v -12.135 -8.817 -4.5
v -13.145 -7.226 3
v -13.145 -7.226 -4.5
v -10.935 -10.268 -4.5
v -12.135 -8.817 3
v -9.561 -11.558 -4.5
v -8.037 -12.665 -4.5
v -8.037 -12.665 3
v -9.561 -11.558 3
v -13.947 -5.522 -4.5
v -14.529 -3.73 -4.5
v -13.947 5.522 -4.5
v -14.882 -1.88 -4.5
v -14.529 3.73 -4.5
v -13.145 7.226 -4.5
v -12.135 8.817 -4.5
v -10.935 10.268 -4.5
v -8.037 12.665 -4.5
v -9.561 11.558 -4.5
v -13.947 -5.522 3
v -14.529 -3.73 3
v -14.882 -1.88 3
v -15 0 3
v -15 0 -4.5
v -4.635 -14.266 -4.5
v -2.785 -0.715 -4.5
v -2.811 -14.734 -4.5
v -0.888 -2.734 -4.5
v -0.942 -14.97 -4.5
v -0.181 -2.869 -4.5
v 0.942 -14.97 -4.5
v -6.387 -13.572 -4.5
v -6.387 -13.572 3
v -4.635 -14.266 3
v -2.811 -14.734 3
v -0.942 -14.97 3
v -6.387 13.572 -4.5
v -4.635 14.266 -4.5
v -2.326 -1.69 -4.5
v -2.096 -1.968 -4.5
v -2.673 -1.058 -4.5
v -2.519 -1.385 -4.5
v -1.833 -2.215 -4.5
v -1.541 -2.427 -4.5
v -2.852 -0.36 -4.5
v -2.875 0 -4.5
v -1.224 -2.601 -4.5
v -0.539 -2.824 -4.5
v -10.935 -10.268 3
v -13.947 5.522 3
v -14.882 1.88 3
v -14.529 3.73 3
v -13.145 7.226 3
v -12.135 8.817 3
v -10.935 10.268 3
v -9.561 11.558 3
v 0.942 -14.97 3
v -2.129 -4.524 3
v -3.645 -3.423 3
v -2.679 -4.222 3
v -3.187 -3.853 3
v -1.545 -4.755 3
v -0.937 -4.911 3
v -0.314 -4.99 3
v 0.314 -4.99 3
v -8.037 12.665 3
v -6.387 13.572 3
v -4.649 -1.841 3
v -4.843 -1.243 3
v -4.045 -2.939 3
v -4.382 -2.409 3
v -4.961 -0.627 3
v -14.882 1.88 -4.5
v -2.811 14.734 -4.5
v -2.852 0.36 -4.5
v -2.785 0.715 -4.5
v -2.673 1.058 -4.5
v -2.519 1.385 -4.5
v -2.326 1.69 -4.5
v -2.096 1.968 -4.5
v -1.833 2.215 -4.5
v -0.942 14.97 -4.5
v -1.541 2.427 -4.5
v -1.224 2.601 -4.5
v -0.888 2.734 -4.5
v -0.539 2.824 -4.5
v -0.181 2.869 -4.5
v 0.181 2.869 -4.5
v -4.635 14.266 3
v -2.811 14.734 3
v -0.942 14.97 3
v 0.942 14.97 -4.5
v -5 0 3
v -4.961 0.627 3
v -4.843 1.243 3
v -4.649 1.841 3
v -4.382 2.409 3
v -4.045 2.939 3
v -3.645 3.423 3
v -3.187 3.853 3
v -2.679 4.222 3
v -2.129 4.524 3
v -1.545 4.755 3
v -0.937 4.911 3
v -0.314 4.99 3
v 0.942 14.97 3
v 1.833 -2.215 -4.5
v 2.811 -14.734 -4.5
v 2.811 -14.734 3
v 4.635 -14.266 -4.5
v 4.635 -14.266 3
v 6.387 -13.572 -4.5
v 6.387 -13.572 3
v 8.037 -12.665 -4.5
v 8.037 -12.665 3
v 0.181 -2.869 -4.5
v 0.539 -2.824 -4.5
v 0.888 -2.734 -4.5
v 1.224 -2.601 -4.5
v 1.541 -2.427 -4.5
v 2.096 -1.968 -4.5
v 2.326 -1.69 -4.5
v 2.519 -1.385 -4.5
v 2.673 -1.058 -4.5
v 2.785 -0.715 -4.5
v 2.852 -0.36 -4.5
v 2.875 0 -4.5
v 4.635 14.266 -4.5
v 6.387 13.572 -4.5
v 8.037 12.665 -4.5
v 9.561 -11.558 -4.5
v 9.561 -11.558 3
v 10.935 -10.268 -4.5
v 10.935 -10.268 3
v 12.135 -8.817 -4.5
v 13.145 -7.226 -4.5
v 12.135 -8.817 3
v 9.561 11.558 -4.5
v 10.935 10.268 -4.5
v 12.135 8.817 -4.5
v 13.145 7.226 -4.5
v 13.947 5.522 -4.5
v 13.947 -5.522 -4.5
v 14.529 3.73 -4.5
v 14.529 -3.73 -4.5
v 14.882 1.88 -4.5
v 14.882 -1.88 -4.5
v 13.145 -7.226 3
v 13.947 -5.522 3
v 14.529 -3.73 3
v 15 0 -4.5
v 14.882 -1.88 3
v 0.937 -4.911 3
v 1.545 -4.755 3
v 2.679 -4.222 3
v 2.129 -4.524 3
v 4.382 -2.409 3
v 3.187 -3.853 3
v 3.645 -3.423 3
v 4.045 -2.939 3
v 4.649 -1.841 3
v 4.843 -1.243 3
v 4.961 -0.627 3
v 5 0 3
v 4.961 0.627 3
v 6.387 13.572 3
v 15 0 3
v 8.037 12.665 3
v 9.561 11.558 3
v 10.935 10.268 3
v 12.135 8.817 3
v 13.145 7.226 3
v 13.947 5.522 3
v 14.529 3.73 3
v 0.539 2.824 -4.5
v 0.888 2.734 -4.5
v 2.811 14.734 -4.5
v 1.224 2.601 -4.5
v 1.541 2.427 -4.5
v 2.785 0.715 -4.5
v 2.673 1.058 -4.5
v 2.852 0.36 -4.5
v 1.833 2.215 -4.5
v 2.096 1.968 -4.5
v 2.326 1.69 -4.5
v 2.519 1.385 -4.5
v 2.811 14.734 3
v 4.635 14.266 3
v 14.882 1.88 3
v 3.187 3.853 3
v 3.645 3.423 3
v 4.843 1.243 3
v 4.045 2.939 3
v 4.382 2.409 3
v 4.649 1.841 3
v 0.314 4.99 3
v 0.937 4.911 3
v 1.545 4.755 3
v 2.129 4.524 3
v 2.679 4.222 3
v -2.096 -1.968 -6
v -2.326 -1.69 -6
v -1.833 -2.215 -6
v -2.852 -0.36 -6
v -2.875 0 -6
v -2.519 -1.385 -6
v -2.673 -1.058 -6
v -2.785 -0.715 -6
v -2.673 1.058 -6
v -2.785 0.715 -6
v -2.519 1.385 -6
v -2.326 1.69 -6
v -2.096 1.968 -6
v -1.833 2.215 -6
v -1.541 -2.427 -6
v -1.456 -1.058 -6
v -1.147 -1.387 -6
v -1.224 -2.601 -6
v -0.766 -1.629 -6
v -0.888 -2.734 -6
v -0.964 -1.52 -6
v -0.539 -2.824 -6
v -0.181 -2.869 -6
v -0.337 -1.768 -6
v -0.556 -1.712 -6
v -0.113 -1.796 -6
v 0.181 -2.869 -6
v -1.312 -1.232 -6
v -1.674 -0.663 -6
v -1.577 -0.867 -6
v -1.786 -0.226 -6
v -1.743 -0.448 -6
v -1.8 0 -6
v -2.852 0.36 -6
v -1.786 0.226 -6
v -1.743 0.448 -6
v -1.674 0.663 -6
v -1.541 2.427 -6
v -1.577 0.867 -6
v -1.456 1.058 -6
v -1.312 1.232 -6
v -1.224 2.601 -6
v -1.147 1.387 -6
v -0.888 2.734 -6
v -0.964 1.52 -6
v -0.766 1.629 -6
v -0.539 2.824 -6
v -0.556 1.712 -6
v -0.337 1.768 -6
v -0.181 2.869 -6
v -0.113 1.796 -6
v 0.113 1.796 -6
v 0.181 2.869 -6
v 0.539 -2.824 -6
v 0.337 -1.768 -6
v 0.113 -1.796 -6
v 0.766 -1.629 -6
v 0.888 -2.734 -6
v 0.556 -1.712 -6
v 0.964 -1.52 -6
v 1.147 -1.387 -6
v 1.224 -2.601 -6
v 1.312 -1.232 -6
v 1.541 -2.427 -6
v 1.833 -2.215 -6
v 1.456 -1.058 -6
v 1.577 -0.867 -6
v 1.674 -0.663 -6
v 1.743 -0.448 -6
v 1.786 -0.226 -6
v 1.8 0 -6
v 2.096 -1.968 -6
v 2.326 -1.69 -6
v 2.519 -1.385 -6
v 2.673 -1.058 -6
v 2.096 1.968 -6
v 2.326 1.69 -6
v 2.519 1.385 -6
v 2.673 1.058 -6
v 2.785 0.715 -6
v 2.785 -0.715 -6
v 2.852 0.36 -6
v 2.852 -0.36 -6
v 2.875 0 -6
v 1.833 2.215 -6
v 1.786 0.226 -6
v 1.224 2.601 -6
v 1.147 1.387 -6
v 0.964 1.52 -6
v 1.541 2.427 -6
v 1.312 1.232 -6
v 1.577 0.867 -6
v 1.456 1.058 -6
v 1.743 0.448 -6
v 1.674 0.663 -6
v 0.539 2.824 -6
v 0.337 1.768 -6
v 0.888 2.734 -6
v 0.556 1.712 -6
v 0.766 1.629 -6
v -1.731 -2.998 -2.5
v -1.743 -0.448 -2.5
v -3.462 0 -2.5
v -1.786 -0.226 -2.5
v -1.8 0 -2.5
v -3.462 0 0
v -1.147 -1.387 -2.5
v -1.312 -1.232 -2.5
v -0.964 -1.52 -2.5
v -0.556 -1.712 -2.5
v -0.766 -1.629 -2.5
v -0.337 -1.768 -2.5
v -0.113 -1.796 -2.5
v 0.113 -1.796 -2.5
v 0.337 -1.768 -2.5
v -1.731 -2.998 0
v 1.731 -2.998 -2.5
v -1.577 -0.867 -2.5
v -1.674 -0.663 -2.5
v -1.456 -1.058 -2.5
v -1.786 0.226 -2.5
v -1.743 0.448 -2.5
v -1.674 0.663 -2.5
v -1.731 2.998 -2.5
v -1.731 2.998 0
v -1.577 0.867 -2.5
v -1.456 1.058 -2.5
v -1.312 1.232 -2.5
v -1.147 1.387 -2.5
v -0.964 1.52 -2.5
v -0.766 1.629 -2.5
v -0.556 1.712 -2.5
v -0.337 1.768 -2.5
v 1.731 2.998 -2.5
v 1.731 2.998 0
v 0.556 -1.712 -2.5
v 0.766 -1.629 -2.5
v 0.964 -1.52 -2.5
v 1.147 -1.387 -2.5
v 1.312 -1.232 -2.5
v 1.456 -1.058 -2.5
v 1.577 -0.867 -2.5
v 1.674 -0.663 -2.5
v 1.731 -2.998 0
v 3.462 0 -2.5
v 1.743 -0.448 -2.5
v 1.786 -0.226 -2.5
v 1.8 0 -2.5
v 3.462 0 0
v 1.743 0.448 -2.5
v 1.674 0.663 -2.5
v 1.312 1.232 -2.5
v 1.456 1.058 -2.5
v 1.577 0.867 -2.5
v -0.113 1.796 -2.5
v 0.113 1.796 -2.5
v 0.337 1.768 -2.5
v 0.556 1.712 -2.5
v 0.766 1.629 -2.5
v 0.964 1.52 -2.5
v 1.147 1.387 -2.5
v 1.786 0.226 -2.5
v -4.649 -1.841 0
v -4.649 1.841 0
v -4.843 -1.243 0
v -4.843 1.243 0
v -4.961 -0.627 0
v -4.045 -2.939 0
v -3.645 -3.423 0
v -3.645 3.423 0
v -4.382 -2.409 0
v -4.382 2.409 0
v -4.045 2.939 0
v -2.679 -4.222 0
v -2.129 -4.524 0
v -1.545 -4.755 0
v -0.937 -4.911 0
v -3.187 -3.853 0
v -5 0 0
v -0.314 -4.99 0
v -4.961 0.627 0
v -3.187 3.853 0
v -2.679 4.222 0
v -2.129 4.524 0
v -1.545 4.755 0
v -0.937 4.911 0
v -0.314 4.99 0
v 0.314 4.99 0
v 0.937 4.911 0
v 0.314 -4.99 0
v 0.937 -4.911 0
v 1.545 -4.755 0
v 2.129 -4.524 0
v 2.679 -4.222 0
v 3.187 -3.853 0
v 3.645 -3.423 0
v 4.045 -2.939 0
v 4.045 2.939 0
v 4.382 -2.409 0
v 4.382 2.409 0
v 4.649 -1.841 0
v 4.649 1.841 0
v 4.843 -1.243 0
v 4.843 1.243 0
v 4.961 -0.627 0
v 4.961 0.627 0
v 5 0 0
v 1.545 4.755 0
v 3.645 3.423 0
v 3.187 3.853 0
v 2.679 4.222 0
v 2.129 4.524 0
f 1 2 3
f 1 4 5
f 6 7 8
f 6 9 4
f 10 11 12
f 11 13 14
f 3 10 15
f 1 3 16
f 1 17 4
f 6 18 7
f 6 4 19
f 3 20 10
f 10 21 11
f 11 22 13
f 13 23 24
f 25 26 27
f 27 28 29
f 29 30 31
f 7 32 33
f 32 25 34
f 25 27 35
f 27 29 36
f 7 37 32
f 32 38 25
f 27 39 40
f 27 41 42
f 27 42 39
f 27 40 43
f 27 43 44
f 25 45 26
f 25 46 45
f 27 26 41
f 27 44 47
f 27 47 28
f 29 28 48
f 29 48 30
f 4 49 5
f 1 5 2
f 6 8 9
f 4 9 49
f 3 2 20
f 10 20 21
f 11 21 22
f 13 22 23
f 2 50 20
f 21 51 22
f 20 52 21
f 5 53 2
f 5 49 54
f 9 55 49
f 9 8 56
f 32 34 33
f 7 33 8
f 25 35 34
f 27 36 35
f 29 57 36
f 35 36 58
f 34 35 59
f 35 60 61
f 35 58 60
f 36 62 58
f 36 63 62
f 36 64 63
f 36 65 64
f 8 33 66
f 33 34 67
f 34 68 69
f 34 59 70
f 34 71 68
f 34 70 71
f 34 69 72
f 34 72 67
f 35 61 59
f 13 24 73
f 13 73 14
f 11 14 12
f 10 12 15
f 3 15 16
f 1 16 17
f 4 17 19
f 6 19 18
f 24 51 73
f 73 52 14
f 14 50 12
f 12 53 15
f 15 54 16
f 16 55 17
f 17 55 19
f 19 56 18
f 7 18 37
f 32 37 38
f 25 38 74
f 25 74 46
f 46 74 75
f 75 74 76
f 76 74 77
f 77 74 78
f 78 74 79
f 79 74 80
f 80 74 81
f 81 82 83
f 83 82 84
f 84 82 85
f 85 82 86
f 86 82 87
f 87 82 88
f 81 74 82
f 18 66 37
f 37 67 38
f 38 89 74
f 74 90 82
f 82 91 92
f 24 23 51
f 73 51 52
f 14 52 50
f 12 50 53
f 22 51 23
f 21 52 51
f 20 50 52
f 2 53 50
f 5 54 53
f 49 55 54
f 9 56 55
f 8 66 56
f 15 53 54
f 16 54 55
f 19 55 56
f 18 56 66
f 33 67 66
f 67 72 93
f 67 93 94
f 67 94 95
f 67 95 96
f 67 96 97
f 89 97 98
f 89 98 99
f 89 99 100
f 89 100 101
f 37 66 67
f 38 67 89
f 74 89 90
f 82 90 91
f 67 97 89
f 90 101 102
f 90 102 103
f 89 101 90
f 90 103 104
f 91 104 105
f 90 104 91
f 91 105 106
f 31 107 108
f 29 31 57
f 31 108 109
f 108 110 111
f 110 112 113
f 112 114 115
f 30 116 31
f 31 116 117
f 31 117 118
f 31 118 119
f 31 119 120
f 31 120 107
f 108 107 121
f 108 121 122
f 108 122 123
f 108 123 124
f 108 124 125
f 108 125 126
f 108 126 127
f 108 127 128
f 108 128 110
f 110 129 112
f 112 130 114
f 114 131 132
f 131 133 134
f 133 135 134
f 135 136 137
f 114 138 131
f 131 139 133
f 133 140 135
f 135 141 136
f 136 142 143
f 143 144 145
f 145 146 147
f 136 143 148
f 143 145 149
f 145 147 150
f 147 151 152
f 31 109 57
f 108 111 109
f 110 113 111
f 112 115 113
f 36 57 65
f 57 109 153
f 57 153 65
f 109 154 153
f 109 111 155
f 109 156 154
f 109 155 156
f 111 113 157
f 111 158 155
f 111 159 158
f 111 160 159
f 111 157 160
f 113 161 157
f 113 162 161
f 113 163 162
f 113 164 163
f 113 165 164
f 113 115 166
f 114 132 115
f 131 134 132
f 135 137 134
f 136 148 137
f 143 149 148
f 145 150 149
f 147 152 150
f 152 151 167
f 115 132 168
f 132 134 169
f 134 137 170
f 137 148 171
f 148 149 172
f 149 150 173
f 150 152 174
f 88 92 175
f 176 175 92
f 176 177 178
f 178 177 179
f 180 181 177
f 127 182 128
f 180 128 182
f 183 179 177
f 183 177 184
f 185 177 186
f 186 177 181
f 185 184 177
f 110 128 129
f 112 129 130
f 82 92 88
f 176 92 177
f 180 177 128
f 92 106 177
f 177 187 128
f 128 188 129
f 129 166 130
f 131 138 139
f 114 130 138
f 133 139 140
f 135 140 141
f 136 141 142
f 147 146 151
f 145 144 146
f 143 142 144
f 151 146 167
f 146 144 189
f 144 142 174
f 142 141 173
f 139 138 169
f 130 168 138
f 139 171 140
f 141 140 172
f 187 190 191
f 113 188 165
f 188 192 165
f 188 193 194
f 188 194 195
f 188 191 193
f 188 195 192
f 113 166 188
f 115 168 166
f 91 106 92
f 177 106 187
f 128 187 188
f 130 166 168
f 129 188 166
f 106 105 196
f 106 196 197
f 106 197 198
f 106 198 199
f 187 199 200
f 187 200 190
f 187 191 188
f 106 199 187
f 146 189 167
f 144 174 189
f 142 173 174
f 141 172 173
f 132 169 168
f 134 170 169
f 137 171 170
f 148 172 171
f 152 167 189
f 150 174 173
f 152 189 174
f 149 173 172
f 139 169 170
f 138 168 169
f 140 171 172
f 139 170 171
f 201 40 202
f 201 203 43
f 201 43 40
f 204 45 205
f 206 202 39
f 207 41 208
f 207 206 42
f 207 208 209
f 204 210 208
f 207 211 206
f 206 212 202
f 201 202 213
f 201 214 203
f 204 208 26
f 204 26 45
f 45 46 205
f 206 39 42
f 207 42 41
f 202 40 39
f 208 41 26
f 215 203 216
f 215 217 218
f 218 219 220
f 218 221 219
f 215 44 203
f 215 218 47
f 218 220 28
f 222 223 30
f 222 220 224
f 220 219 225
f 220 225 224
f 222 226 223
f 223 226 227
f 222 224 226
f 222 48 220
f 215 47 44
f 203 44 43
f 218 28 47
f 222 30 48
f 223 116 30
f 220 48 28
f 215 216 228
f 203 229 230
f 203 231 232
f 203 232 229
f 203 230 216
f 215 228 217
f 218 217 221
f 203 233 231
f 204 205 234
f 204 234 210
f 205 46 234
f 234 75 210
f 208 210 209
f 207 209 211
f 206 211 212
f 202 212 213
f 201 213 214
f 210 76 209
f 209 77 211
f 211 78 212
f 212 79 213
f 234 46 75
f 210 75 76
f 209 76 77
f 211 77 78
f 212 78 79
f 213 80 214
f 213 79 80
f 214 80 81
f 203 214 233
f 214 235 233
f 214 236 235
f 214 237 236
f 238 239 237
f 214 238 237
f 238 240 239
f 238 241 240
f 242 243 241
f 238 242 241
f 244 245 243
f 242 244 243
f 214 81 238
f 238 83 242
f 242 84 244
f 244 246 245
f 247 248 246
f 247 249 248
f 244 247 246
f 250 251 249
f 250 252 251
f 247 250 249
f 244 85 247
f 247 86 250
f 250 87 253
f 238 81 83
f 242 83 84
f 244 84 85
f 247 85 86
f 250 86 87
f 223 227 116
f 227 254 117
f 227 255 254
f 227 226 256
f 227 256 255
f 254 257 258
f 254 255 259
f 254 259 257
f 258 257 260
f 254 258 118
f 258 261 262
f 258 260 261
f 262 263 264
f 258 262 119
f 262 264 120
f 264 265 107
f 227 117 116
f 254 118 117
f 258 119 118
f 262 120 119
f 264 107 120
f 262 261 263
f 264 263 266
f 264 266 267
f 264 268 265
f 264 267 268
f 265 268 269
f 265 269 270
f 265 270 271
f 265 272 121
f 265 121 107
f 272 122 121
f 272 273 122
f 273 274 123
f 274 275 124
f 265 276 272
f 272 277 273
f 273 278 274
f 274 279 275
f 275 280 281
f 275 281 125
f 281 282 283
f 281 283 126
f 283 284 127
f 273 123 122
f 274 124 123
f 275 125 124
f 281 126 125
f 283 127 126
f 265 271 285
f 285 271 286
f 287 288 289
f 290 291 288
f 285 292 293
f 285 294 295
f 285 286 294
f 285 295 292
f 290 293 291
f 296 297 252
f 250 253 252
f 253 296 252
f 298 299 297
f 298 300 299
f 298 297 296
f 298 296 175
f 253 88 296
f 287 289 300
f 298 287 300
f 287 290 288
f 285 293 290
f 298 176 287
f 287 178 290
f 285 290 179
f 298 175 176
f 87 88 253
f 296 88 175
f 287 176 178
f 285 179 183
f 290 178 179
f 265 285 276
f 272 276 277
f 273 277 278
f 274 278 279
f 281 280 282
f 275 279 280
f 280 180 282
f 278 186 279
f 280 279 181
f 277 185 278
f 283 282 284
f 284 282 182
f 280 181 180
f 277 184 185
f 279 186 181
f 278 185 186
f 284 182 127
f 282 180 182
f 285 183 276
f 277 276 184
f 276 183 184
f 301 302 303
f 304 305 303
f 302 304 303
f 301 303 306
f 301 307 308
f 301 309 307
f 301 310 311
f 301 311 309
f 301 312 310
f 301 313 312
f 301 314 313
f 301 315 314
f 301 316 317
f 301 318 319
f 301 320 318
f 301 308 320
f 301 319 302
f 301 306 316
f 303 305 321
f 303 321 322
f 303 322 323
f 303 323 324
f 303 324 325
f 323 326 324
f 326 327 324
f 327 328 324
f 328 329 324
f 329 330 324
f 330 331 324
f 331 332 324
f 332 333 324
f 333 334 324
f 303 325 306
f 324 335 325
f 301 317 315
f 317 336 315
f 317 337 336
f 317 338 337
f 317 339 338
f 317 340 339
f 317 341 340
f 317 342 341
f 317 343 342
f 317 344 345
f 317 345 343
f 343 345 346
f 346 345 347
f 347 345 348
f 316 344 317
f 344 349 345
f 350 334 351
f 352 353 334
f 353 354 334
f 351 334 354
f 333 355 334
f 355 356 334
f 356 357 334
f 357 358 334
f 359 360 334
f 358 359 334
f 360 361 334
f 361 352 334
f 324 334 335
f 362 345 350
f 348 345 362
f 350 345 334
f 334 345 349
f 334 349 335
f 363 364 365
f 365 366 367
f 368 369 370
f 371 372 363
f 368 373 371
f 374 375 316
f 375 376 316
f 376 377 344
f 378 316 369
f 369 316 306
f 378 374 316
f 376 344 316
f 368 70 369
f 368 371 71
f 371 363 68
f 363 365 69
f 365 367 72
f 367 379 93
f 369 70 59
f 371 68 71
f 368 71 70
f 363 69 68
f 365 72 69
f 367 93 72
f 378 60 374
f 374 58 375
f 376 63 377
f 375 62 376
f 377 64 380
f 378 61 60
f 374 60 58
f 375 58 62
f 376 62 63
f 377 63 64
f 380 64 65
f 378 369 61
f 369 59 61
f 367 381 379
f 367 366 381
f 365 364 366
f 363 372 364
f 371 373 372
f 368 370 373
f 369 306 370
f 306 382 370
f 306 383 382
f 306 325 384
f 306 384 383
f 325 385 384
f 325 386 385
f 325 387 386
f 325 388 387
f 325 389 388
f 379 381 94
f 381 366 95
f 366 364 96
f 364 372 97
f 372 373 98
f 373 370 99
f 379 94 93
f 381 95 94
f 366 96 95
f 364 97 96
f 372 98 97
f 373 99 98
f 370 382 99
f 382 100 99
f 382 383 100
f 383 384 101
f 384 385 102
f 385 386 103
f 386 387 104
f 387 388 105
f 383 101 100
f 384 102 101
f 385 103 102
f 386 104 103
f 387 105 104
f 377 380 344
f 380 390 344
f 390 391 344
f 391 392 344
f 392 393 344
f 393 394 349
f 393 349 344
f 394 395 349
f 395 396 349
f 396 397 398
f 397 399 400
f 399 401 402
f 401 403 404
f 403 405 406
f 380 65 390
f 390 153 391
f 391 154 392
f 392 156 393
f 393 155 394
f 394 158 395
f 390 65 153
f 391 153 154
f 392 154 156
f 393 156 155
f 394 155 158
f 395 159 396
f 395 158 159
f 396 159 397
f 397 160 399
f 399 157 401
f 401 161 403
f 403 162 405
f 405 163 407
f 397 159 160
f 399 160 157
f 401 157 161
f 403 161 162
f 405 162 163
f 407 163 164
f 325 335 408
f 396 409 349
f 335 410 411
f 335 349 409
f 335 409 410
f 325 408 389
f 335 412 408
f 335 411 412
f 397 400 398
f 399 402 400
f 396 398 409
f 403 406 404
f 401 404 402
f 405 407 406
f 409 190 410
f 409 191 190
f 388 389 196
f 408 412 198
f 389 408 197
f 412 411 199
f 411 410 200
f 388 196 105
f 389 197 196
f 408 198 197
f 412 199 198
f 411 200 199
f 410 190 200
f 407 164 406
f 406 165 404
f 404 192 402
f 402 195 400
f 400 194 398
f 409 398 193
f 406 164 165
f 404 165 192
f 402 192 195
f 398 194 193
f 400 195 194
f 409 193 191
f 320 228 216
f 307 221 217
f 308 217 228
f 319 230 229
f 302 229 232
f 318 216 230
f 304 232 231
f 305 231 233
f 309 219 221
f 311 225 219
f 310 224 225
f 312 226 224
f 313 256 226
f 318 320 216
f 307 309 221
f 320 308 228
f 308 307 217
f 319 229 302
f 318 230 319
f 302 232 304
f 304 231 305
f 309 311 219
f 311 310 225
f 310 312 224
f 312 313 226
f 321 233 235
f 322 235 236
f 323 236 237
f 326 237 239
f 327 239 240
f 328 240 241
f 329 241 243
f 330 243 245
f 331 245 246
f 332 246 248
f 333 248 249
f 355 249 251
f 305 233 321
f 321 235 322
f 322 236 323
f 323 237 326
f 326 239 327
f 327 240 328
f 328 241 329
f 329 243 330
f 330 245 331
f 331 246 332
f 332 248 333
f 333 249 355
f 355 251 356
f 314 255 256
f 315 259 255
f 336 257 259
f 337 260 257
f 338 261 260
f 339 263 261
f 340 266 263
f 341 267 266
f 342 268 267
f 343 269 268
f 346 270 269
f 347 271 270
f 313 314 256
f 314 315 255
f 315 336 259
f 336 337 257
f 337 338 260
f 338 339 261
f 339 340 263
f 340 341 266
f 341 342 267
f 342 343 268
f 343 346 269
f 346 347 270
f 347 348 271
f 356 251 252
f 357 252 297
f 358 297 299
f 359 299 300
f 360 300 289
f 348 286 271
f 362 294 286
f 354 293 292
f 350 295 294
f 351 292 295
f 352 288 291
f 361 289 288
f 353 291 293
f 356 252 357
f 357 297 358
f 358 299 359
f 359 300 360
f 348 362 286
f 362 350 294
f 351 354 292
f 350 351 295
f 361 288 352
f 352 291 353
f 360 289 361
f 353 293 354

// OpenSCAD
$fn = 50;

difference() {
	union() {
		translate(v = [0, 0, -4.5]) {
			cylinder(h = 7.5, r = 15.0);
		}
		#translate(v = [0, 0, -6.0]) {
			cylinder(h = 6, r = 2.875);
		}
	}
	union() {
		translate(v = [0, 0, 0]) {
			rotate(a = [0, 0, 0]) {
				difference() {
					union() {
						translate(v = [0, 0, -2.5]) {
							linear_extrude(height = 2.5) {
								polygon(points = [[3.4619999999999997, 0.0], [1.7310000000000003, 2.9981799479017264], [-1.7309999999999992, 2.9981799479017264], [-3.4619999999999997, 4.2397272186481365e-16], [-1.7310000000000014, -2.998179947901726], [1.7309999999999977, -2.9981799479017277]]);
							}
						}
					}
					union();
				}
			}
		}
		#cylinder(h = 3, r = 5.0);
		#translate(v = [0, 0, -100.0]) {
			cylinder(h = 200, r = 1.8);
		}
	}
}
